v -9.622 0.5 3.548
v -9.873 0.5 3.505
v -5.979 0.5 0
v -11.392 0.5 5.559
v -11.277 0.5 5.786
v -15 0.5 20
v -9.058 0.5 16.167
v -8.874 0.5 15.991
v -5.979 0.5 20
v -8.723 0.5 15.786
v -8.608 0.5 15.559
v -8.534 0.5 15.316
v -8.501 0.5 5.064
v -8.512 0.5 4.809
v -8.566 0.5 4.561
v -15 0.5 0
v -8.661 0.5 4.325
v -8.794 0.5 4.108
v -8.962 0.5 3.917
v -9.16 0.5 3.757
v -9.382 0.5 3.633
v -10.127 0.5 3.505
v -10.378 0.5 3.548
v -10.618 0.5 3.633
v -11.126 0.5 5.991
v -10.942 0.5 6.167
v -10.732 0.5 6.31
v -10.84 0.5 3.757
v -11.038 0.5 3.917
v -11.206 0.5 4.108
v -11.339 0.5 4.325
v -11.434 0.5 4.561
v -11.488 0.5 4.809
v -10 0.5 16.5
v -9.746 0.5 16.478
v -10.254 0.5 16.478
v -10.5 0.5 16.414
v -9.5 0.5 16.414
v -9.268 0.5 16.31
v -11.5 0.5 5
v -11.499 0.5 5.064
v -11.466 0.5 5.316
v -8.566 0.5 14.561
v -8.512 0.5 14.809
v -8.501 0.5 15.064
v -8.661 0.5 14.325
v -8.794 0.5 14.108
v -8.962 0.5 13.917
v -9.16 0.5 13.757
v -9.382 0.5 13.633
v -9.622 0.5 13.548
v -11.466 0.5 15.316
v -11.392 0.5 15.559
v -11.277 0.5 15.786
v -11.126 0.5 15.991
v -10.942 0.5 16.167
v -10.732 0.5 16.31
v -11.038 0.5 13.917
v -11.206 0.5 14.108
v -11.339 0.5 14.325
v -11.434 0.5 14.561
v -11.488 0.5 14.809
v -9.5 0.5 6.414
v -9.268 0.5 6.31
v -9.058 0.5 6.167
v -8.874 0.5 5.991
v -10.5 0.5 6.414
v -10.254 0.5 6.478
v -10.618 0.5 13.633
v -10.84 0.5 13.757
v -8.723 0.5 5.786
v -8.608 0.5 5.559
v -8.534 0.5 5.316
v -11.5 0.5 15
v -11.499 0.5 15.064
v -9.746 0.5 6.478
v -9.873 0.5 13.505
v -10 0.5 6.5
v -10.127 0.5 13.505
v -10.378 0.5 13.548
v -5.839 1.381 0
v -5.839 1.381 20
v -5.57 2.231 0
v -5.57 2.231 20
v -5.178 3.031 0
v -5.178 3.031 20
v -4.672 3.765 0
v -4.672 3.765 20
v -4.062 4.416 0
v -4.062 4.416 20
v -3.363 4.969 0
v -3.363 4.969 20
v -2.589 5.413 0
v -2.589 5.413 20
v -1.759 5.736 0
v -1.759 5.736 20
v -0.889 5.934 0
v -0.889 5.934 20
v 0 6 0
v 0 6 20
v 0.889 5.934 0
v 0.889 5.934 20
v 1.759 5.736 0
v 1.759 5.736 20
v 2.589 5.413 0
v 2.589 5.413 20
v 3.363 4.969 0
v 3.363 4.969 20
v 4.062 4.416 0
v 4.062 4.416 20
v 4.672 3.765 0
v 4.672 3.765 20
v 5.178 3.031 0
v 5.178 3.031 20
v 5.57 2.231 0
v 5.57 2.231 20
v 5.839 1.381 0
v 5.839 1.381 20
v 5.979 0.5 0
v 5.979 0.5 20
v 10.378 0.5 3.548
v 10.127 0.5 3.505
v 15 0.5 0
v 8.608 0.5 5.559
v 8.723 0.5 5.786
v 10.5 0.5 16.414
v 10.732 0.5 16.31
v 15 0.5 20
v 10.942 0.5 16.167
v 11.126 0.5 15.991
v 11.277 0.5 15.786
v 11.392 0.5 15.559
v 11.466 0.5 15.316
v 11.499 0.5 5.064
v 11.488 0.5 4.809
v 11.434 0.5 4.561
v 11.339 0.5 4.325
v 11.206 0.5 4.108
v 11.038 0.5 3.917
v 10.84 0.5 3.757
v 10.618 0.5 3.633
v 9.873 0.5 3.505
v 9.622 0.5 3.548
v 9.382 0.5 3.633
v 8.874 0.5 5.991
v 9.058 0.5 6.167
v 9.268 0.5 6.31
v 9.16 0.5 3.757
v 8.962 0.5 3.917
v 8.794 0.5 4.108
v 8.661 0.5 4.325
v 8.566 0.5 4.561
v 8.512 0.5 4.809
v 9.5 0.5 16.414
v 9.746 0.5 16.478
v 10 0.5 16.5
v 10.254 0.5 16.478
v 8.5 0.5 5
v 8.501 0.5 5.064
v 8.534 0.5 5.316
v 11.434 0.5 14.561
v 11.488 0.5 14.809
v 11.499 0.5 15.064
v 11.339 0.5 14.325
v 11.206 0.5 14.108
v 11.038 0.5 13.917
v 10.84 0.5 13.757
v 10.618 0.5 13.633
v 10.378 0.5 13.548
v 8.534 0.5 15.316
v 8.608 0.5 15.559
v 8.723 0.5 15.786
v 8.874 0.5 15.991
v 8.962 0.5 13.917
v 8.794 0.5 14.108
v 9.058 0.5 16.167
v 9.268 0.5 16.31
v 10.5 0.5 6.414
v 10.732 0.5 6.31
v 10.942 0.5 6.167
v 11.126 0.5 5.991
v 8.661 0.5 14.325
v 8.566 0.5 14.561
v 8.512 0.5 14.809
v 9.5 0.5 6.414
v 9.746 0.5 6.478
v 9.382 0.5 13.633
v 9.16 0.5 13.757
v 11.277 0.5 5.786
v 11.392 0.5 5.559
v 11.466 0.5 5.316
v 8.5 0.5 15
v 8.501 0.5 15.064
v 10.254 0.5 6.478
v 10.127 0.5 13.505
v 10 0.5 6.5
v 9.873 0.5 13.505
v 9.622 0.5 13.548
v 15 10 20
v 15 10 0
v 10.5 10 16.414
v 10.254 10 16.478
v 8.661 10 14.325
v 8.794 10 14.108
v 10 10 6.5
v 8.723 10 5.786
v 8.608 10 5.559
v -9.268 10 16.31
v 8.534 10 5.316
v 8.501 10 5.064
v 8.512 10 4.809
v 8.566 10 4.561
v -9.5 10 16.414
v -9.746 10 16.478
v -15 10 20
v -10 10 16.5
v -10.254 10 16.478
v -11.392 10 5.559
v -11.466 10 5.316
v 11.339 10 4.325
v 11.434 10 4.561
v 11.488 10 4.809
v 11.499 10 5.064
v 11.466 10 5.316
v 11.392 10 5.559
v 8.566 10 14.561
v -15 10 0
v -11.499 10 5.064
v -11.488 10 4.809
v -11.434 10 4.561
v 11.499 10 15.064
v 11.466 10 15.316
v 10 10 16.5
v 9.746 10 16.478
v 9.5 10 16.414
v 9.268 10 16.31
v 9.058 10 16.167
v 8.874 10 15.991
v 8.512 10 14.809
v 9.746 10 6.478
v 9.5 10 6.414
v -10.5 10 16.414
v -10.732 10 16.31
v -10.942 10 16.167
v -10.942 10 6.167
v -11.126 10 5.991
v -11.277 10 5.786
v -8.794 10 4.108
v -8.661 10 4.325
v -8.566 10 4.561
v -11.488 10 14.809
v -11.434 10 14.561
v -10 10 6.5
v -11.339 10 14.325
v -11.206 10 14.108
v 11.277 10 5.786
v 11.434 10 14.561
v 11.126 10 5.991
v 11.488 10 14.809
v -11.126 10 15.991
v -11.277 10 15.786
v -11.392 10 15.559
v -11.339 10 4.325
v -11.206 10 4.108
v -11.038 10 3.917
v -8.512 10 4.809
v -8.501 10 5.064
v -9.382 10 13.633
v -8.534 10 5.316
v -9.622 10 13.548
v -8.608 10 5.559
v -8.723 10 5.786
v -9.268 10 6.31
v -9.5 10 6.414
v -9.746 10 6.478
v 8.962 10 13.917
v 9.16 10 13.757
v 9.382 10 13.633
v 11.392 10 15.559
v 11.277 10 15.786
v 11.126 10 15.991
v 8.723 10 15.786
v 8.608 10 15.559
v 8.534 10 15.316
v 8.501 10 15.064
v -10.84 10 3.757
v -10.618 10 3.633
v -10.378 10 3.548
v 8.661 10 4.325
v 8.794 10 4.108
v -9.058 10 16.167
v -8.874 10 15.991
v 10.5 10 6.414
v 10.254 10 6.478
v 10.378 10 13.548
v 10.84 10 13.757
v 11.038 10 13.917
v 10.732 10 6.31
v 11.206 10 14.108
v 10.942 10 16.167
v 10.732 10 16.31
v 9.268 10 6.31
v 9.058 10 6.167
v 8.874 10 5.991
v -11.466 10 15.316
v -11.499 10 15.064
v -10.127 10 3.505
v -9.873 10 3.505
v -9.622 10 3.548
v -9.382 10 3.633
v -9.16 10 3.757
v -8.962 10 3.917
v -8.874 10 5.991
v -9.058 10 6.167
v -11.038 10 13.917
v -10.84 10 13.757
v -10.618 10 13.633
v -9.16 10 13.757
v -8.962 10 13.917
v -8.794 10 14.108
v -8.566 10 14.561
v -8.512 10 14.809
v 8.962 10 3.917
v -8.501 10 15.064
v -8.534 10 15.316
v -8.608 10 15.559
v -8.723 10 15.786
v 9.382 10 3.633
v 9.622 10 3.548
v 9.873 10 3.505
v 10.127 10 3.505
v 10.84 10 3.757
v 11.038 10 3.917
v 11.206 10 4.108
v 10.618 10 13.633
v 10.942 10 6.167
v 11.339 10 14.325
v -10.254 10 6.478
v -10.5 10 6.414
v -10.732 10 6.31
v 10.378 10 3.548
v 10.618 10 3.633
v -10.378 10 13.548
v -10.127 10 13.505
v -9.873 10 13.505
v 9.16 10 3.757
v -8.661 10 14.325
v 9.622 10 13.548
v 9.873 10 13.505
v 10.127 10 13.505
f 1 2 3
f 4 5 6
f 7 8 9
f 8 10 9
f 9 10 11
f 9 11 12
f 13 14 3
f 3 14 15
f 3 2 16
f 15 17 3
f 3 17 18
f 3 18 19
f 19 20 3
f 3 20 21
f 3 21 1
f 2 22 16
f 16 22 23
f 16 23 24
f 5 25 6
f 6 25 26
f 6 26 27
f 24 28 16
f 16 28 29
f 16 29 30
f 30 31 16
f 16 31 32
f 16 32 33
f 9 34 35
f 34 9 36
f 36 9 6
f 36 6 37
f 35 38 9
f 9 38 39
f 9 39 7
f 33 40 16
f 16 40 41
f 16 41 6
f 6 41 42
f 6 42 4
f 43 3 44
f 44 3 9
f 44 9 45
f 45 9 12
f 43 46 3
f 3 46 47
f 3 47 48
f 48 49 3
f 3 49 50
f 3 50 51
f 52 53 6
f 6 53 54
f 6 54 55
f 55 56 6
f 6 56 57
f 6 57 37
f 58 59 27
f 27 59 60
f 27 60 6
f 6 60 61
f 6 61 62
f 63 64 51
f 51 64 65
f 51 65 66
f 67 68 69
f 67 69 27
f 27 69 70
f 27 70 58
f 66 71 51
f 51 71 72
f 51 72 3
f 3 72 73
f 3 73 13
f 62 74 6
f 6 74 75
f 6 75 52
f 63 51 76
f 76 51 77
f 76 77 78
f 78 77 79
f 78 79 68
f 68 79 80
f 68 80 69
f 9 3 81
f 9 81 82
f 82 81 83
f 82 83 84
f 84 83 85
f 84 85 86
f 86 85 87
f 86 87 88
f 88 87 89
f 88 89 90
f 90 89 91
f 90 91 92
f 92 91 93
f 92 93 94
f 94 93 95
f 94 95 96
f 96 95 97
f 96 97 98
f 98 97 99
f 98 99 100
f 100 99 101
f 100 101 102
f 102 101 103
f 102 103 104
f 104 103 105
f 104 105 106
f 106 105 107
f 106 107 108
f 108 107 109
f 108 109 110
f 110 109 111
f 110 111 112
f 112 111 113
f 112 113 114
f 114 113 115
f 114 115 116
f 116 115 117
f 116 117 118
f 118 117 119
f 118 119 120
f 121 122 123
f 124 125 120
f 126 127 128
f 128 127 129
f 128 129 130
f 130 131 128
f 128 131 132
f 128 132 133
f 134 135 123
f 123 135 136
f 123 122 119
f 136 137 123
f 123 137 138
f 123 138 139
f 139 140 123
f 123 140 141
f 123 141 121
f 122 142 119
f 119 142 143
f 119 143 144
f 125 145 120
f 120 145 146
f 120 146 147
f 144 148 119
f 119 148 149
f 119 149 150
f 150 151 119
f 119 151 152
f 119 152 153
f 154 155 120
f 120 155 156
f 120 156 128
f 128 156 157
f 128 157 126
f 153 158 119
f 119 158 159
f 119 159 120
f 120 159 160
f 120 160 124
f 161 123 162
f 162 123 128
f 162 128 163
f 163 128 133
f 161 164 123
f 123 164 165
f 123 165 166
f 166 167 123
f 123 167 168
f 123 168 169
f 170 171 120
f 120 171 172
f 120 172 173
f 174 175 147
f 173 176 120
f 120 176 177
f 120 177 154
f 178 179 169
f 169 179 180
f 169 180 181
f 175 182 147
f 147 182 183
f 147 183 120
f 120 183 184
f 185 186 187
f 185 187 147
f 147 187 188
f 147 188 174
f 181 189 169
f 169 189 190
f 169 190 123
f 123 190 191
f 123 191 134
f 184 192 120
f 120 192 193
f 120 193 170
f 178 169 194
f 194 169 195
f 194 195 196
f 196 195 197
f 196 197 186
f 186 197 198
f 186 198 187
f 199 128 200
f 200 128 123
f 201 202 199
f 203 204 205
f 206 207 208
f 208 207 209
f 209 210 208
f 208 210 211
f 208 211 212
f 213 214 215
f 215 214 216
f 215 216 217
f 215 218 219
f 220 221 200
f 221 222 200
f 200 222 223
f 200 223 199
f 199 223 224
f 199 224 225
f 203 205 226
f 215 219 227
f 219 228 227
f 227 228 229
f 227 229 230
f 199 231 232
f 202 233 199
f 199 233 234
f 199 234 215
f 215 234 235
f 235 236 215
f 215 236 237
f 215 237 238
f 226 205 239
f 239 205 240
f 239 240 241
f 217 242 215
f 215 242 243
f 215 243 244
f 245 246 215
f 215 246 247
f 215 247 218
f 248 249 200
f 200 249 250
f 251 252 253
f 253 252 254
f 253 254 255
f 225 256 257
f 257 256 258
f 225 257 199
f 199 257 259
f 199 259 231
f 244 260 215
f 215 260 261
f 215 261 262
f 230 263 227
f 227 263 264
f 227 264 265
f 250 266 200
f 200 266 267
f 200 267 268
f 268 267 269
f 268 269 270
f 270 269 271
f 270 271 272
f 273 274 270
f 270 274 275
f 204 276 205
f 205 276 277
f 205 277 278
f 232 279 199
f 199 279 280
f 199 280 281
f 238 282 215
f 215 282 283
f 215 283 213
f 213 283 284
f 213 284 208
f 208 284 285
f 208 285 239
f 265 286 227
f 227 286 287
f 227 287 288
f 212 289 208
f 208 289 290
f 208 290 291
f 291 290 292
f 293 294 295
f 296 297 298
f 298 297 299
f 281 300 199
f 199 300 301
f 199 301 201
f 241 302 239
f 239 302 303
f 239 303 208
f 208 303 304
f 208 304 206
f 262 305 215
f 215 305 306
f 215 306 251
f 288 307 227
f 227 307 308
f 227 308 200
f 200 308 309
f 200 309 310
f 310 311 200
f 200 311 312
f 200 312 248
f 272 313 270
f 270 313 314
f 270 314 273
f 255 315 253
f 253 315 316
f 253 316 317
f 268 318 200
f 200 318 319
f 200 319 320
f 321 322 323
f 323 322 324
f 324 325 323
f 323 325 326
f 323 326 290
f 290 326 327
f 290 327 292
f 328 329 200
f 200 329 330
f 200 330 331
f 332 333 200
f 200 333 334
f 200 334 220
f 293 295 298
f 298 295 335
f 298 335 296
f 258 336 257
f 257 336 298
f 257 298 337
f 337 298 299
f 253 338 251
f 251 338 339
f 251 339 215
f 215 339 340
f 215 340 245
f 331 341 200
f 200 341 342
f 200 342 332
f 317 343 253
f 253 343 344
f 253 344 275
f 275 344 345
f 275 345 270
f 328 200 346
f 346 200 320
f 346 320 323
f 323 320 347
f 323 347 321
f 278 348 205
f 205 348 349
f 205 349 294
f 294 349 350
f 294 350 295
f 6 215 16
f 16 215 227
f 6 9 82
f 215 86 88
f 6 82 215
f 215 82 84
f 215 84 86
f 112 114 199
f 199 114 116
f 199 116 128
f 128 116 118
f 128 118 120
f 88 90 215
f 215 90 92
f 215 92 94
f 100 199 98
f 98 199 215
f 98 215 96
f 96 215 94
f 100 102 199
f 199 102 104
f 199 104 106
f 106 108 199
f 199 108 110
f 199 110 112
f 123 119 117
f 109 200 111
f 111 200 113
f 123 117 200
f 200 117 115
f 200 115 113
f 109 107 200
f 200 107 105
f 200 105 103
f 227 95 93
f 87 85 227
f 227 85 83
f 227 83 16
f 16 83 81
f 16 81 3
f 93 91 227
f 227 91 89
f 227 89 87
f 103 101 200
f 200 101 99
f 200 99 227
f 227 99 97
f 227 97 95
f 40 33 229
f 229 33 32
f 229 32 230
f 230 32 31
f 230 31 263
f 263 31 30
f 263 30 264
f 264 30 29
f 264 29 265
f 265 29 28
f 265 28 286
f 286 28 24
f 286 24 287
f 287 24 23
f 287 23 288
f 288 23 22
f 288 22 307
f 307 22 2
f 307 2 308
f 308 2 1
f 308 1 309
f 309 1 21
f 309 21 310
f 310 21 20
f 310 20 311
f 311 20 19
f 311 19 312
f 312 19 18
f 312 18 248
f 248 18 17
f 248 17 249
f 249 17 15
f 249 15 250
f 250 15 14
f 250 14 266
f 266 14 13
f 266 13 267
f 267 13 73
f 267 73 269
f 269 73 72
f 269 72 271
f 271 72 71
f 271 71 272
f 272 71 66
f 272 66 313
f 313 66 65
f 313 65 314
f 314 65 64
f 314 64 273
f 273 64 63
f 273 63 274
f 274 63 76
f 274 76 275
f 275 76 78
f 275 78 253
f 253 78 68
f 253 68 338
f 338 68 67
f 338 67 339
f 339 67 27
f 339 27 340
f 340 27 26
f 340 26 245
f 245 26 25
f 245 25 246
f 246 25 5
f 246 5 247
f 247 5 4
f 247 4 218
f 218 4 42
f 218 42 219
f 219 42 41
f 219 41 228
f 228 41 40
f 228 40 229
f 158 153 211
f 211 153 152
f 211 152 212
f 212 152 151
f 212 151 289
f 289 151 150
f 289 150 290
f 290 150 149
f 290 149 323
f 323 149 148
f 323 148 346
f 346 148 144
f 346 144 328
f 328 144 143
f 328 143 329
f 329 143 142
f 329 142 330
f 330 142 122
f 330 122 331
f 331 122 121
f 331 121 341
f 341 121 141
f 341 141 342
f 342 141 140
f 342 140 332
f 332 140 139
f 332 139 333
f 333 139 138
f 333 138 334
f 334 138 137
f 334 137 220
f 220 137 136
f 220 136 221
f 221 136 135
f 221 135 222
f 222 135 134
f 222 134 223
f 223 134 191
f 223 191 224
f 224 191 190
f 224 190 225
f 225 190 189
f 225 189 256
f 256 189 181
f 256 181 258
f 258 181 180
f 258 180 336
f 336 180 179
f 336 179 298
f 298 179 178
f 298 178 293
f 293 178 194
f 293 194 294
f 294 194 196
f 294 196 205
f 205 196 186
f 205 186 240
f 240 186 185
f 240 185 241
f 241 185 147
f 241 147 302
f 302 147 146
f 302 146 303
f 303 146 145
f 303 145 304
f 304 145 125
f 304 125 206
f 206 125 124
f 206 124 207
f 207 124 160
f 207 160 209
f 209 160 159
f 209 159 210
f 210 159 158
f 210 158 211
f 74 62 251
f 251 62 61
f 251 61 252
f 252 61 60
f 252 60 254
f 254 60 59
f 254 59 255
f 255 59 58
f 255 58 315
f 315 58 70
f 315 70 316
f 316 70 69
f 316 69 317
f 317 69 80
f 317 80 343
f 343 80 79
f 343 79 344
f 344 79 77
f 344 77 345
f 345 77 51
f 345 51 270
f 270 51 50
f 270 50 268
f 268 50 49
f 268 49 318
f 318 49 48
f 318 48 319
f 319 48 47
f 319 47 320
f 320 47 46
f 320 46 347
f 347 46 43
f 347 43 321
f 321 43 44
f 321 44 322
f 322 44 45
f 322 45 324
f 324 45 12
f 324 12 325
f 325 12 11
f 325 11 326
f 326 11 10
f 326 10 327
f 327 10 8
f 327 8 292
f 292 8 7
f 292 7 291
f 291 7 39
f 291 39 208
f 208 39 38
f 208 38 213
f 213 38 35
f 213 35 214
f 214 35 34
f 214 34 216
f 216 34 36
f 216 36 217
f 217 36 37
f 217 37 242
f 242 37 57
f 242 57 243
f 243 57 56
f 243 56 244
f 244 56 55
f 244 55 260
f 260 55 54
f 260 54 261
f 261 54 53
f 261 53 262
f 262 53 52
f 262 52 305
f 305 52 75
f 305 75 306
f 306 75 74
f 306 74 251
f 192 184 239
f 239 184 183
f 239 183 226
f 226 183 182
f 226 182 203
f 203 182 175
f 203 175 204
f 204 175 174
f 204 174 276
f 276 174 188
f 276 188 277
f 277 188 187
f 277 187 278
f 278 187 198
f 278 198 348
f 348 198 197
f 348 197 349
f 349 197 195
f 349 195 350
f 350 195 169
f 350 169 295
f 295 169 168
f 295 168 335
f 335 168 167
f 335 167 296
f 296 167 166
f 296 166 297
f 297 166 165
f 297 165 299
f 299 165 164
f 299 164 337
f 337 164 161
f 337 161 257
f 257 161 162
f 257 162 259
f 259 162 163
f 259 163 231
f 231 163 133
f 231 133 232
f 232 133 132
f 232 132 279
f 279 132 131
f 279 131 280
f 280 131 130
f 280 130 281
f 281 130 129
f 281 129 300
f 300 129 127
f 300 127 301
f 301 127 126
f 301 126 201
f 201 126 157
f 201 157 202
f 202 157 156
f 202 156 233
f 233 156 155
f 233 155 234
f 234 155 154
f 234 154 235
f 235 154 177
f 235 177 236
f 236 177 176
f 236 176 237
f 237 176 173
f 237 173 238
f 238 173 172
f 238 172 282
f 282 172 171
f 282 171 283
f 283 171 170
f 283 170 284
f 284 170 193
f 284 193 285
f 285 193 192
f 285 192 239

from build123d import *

# Parameters (mm, degrees)
BOSS_EXTRU_1_DEPTH      = 20
ESQUISSE3_R             = 1.5
ENL_V_MAT_EXTRU_1_DEPTH = 10


with BuildPart() as part:
    # Esquisse2 → Boss.-Extru.1 (new body)
    with BuildSketch(Plane.XY):
        with BuildLine():
            Line((-15, 0.5), (-15, 10))
            Line((-15, 10), (15, 10))
            Line((15, 10), (15, 0.5))
            Line((15, 0.5), (5.979130372, 0.5))
            ThreePointArc((5.979130372, 0.5), (0, 6), (-5.979130372, 0.5))
            Line((-5.979130372, 0.5), (-15, 0.5))
        make_face()
    extrude(amount=BOSS_EXTRU_1_DEPTH)

    # Esquisse3 → Enlèv. mat.-Extru.1 (cut)
    with BuildSketch(Plane(origin=(0, 10, 0), x_dir=(1, 0, 0), z_dir=(0, 1, 0))):
        with Locations((-10, -5)):
            Circle(ESQUISSE3_R)
        with Locations((10, -5)):
            Circle(ESQUISSE3_R)
        with Locations((-10, -15)):
            Circle(ESQUISSE3_R)
        with Locations((10, -15)):
            Circle(ESQUISSE3_R)
    extrude(amount=-ENL_V_MAT_EXTRU_1_DEPTH, mode=Mode.SUBTRACT)


solid = part.part
